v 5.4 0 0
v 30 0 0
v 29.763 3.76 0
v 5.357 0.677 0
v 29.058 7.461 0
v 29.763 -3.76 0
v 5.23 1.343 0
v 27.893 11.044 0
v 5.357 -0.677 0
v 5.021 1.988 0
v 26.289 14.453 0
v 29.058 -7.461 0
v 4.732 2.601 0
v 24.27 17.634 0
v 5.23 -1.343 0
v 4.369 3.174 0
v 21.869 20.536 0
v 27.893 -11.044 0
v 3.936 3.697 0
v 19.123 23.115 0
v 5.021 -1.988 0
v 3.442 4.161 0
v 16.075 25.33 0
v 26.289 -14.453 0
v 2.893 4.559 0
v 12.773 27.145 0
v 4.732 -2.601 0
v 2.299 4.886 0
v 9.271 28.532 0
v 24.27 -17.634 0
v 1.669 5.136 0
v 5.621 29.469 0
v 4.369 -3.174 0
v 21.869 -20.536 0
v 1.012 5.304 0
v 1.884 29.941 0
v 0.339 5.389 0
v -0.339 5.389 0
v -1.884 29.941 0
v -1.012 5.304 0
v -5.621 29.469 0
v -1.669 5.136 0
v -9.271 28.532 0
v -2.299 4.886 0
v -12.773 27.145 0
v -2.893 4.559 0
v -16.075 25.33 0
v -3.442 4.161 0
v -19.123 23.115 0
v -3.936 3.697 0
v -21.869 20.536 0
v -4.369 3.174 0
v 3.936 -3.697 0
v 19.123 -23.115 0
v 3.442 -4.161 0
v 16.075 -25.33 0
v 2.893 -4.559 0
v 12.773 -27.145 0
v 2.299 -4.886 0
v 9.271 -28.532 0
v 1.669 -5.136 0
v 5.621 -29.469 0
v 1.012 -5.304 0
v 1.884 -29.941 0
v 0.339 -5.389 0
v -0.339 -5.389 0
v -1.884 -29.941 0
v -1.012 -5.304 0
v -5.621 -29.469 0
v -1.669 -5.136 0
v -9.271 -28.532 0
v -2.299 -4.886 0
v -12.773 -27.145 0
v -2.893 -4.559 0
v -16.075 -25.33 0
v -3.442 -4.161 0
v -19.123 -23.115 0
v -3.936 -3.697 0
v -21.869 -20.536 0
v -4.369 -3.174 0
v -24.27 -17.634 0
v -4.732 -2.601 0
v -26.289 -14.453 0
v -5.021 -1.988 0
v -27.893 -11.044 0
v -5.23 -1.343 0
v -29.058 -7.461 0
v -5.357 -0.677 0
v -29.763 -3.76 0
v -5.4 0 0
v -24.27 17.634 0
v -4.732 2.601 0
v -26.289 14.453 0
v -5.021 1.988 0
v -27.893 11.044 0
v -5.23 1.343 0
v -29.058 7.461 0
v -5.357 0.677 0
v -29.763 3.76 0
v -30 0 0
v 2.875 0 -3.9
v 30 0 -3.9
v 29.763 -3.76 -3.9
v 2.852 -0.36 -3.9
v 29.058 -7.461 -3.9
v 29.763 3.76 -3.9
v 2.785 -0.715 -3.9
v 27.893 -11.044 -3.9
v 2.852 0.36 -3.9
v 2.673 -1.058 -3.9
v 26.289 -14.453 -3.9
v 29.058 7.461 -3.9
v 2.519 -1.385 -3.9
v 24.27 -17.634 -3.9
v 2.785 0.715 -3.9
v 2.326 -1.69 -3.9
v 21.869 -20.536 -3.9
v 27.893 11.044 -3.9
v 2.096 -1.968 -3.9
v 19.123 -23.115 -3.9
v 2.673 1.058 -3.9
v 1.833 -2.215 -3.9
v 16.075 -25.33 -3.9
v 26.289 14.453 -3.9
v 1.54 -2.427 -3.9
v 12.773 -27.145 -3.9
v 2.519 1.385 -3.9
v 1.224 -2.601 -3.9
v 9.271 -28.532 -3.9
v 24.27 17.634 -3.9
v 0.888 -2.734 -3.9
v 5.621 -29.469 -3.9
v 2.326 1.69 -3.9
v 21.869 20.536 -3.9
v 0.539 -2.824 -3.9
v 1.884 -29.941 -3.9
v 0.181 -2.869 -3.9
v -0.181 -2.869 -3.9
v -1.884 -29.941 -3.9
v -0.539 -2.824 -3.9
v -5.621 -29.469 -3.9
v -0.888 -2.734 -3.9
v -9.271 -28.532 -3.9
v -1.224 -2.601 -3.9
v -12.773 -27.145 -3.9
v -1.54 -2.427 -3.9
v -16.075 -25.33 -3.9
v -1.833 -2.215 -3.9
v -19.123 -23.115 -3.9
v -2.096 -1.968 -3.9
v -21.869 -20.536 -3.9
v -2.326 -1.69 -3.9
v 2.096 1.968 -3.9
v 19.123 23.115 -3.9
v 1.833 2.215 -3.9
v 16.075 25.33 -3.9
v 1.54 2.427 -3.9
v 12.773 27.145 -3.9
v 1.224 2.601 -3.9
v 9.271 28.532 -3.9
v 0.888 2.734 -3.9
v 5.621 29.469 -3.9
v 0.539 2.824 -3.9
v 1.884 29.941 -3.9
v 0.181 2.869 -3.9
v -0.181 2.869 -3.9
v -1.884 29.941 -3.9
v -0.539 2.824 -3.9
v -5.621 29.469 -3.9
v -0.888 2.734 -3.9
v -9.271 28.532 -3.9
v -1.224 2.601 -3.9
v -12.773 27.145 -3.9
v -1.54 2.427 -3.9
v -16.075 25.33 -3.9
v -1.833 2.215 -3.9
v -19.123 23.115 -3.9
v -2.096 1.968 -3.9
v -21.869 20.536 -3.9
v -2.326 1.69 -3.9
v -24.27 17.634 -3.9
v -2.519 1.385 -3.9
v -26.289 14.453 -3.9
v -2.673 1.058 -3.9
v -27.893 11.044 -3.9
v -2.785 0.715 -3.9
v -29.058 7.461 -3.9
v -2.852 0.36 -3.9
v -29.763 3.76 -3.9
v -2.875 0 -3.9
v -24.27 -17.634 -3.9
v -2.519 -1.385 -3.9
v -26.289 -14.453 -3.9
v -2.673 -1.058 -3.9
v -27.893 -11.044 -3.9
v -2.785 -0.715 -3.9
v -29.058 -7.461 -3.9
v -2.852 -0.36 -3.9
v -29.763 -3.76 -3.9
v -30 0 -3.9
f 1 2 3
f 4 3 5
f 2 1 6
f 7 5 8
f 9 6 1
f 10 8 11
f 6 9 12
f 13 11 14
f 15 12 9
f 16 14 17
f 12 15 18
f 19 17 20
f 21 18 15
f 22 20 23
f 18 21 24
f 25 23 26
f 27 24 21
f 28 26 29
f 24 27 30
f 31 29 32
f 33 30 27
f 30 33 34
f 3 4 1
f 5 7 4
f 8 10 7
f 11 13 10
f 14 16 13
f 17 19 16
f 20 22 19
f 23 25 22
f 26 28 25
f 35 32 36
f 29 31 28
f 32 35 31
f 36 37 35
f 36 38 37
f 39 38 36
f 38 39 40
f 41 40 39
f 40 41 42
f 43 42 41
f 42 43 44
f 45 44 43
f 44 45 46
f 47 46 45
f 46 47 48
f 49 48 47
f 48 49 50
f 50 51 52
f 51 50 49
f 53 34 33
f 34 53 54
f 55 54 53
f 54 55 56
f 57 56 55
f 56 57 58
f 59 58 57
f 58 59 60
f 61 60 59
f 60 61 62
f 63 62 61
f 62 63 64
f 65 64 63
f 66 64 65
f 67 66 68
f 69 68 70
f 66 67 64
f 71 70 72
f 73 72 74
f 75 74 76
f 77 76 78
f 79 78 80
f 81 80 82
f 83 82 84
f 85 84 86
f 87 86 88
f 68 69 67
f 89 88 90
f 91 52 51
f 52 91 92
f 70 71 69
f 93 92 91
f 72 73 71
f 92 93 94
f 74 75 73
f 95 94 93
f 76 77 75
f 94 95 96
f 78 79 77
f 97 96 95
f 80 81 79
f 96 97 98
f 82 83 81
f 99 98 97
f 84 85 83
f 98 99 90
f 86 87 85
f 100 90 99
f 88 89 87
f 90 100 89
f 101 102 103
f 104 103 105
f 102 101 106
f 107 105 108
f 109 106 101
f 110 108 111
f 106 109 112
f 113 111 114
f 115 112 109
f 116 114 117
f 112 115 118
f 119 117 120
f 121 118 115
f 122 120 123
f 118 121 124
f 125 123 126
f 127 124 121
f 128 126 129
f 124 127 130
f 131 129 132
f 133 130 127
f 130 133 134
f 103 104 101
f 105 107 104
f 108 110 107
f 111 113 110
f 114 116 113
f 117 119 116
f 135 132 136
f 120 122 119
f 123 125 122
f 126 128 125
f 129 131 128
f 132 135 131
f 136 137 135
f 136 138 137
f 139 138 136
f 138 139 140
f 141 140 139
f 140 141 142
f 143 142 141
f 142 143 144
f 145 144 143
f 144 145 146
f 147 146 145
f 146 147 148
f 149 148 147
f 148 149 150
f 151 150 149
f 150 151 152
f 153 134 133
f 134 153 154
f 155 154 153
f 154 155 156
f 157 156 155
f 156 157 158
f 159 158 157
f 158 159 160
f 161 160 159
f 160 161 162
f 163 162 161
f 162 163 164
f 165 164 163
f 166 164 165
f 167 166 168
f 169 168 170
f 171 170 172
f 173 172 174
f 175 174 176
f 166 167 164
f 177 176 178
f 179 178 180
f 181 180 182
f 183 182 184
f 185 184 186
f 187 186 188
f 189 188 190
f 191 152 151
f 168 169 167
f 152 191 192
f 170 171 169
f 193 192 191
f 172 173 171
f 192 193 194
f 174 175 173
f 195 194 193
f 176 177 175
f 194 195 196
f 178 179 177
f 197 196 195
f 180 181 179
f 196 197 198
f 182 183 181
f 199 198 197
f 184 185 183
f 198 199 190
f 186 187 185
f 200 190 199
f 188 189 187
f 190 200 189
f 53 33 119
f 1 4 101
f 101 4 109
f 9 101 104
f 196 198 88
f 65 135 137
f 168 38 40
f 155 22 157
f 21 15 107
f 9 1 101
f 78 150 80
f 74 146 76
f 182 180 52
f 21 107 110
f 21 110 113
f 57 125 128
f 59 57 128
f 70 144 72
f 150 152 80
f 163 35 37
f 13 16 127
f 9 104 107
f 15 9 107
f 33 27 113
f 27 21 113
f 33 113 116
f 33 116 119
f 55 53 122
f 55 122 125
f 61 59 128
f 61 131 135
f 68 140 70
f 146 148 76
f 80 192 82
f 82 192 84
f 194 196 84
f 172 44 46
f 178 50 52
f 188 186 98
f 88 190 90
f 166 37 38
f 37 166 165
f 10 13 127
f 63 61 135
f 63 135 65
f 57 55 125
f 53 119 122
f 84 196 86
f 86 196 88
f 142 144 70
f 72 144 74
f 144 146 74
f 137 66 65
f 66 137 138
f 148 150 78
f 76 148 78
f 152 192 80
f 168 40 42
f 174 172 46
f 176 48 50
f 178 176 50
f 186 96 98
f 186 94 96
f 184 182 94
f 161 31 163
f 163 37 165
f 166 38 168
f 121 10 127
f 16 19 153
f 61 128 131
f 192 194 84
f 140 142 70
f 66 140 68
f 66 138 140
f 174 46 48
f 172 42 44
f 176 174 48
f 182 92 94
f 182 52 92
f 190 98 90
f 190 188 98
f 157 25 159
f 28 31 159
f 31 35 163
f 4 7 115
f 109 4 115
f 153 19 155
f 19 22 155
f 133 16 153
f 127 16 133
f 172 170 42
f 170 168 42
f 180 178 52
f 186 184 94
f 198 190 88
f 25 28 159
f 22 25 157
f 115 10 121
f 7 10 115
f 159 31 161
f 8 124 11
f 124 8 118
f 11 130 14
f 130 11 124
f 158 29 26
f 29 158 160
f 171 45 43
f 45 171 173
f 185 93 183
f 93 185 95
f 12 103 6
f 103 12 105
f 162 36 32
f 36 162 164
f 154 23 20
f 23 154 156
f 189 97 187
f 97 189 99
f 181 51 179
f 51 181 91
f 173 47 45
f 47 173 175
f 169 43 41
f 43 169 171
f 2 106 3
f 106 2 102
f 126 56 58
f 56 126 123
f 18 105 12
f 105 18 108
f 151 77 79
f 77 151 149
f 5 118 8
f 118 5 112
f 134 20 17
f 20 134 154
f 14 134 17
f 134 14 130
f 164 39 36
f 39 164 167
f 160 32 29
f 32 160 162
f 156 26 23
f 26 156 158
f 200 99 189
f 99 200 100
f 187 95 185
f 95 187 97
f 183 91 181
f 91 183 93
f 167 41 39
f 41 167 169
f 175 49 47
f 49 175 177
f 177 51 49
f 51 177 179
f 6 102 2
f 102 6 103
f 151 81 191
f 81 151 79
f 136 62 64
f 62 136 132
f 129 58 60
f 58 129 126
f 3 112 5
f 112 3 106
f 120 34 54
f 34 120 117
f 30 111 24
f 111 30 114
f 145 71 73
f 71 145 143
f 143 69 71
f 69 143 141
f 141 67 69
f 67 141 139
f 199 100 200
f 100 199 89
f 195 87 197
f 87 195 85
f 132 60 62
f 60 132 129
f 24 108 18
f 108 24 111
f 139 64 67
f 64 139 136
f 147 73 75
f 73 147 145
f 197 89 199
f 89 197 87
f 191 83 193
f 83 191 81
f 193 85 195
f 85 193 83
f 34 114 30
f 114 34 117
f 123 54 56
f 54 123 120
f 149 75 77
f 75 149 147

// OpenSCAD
$fn = 50;


difference() {
	union() {
		translate(v = [0, 0, -3.9000000000]) {
			cylinder(h = 3.9000000000, r = 30.0000000000);
		}
	}
	union() {
		translate(v = [0, 0, 0]) {
			rotate(a = [0, 0, 0]) {
				difference() {
					union() {
						#translate(v = [0, 0, -3.9000000000]) {
							cylinder(h = 3.9000000000, r = 2.6000000000);
						}
						#translate(v = [0, 0, -3.9000000000]) {
							cylinder(h = 3.9000000000, r1 = 2.8750000000, r2 = 5.4000000000);
						}
						#translate(v = [0, 0, -3.9000000000]) {
							cylinder(h = 3.9000000000, r = 2.8750000000);
						}
						#translate(v = [0, 0, -3.9000000000]) {
							cylinder(h = 3.9000000000, r = 2.6000000000);
						}
					}
					union();
				}
			}
		}
	}
}
